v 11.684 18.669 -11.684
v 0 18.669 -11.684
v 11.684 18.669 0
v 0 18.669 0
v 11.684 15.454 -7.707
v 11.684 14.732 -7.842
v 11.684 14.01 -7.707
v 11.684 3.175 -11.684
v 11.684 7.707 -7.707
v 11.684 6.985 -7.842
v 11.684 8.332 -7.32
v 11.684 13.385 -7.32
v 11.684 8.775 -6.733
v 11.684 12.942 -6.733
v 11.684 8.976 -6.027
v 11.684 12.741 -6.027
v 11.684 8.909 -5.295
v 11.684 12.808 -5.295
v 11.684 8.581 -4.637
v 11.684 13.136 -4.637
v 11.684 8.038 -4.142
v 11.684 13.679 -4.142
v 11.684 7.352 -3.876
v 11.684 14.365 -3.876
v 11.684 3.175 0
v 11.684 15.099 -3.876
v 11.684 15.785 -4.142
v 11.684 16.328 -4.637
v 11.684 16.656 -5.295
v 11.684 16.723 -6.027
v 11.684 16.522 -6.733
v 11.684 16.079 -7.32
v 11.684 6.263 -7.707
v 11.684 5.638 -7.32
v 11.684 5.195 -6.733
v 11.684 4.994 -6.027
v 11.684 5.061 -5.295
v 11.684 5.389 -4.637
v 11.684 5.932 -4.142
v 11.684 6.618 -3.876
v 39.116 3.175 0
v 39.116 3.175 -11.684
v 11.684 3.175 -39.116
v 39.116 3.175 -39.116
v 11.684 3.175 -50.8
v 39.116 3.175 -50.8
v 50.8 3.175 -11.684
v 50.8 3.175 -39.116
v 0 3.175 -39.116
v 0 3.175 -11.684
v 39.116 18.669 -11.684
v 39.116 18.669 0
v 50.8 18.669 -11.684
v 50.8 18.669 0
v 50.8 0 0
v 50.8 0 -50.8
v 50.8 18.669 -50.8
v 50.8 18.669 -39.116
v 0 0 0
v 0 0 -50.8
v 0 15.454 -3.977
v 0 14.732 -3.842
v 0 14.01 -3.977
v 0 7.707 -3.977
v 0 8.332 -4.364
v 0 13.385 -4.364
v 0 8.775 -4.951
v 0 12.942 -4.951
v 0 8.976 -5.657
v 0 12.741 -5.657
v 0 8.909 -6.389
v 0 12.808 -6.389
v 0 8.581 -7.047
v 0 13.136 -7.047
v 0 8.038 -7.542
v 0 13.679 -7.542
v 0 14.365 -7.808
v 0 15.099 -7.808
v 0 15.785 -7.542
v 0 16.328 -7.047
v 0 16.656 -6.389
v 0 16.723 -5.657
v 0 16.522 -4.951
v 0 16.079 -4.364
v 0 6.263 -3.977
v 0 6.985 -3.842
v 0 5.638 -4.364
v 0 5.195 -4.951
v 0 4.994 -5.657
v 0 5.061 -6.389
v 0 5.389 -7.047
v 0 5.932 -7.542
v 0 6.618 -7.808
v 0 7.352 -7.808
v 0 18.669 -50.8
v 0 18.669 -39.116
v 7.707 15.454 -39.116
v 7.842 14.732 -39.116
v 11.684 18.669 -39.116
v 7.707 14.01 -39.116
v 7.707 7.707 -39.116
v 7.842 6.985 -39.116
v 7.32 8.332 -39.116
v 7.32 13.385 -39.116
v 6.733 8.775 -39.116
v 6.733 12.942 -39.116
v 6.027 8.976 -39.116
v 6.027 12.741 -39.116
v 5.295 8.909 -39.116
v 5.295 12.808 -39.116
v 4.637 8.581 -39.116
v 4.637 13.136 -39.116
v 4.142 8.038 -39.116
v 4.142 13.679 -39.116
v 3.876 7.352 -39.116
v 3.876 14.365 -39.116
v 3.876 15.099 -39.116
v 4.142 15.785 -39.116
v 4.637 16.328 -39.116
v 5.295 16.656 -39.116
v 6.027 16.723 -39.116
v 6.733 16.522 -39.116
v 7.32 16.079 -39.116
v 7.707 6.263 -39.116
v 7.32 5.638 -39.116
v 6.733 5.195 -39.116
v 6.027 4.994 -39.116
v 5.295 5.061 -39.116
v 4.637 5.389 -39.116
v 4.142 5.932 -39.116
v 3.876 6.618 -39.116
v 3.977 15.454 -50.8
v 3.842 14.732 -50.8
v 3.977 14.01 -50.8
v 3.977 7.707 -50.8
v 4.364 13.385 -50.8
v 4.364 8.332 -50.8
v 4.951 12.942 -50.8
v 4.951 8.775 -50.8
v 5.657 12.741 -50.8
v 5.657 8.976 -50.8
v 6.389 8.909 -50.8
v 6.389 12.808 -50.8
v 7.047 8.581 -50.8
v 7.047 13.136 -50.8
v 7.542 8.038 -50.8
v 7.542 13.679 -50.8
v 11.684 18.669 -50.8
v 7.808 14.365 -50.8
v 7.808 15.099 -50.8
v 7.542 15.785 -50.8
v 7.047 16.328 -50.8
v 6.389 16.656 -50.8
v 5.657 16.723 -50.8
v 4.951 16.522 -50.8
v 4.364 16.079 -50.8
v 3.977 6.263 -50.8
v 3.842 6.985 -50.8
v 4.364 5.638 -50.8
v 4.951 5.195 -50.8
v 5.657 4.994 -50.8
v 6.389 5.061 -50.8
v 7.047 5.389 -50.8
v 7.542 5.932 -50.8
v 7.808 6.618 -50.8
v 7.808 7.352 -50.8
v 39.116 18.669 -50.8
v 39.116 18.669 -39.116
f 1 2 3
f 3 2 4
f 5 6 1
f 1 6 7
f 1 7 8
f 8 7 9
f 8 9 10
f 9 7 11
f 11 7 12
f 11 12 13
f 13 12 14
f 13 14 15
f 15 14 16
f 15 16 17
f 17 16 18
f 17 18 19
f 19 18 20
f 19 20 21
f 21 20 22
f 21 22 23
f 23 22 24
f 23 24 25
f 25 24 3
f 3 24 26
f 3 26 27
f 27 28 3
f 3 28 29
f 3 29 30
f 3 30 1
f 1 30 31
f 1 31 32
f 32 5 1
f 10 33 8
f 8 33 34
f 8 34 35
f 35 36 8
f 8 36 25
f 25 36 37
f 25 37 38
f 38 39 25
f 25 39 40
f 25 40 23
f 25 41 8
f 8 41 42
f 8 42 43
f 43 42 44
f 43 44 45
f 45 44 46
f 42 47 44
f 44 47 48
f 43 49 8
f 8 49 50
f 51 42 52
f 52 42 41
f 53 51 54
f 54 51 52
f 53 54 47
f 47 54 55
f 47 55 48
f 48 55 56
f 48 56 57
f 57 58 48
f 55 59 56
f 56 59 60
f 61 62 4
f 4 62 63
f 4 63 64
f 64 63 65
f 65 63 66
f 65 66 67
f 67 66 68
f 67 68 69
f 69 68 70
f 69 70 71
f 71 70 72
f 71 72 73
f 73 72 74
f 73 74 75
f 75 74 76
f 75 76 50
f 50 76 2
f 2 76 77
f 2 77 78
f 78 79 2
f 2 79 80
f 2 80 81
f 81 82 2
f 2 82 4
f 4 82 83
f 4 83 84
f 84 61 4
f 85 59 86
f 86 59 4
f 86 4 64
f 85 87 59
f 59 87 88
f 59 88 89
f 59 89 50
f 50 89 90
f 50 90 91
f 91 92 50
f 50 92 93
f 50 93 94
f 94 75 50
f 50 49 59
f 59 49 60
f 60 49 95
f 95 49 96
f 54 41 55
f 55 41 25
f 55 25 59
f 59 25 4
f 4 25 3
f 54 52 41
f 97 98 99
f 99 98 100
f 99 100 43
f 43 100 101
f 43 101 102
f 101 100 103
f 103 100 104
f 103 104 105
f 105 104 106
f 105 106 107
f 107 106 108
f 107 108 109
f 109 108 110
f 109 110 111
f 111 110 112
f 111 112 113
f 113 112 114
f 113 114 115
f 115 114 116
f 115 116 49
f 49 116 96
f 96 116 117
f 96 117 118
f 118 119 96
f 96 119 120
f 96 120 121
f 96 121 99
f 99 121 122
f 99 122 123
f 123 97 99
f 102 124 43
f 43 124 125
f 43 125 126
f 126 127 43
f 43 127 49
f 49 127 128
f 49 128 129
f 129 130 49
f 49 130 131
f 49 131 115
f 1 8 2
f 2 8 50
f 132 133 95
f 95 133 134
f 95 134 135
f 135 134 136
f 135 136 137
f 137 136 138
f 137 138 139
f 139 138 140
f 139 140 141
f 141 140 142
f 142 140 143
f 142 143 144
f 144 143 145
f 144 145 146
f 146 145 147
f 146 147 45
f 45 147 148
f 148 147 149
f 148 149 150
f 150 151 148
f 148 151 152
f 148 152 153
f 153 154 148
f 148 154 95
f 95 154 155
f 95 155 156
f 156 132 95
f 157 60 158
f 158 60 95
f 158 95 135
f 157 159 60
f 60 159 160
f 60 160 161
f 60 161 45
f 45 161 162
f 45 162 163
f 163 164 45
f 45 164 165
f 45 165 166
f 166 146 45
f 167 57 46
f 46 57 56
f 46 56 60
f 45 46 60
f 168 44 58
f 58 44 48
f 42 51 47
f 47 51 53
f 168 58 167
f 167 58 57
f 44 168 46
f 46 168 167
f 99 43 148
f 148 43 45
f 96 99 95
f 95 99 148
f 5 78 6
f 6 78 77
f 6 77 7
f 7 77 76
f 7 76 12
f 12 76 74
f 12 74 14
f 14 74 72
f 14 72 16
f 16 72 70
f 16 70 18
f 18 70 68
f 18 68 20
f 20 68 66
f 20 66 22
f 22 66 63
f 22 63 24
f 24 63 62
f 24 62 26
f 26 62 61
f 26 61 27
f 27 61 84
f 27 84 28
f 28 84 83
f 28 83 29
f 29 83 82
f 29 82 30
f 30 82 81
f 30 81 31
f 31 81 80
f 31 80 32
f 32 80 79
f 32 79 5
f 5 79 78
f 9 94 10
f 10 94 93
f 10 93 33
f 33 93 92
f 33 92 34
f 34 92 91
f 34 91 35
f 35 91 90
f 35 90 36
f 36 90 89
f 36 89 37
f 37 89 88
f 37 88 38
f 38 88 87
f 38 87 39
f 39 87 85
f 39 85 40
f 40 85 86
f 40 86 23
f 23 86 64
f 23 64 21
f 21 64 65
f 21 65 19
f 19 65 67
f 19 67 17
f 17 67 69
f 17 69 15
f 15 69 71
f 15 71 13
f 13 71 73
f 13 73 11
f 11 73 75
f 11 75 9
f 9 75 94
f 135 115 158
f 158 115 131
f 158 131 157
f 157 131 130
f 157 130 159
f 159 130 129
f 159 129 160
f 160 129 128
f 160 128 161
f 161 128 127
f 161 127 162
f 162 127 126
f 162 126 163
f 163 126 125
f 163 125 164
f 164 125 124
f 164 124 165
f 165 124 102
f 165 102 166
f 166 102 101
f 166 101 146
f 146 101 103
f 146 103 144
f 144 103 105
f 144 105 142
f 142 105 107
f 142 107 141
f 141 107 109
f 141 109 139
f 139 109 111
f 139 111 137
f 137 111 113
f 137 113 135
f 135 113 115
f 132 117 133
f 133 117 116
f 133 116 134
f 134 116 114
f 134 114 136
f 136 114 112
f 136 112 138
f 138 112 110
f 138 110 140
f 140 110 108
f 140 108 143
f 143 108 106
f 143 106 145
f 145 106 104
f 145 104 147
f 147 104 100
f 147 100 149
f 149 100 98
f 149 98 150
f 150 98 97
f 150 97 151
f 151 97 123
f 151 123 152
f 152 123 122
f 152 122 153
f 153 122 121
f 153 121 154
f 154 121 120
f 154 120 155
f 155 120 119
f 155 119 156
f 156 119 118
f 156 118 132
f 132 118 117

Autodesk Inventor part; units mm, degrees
ref_plane "YZ Plane" through (0, 0, 0) normal (1, 0, 0) x (0, 1, 0)
ref_plane "XZ Plane" through (0, 0, 0) normal (0, 1, 0) x (-1, 0, 0)
ref_plane "XY Plane" through (0, 0, 0) normal (0, 0, 1) x (1, 0, 0)
sketch "Sketch1" plane through (0, 0, 0) normal (0, 0, 1) x (1, 0, 0)
  line L0 (0, 0) -> (50.8, 0)
  line L1 (50.8, 0) -> (50.8, 3.175)
  line L2 (50.8, 3.175) -> (0, 3.175)
  line L3 (0, 3.175) -> (0, 0)
  line L4 (0, 3.175) -> (11.684, 3.175)
  line L5 (11.684, 3.175) -> (11.684, 18.669)
  line L6 (11.684, 18.669) -> (0, 18.669)
  line L7 (0, 18.669) -> (0, 3.175)
  line L8 (50.8, 3.175) -> (39.116, 3.175)
  line L9 (39.116, 3.175) -> (39.116, 18.669)
  line L10 (39.116, 18.669) -> (50.8, 18.669)
  line L11 (50.8, 18.669) -> (50.8, 3.175)
  dimension "d0" = 50.8
  dimension "d1" = 3.175
  dimension "d2" = 11.684
  dimension "d3" = 15.494
  dimension "d4" = 11.684
  dimension "d5" = 15.494
extrude "Extrusion1" add sketch "Sketch1" against normal blind 50.8
sketch "Sketch2" plane through (50.8, 0, 0) normal (1, 0, 0) x (0, 0, -1)
  line L0 (0, 3.175) -> (0, 18.669) projected
  line L1 (0, 3.175) -> (11.684, 3.175)
  line L2 (11.684, 3.175) -> (11.684, 18.669)
  line L3 (11.684, 18.669) -> (0, 18.669)
  line L4 (0, 18.669) -> (0, 3.175)
  line L5 (0, 18.669) -> (50.8, 18.669) projected
  line L6 (0, 3.175) -> (50.8, 3.175) projected
  line L7 (50.8, 18.669) -> (39.116, 18.669)
  line L8 (39.116, 18.669) -> (39.116, 3.175)
  line L9 (39.116, 3.175) -> (50.8, 3.175)
  line L10 (50.8, 3.175) -> (50.8, 18.669)
  line L11 (11.684, 3.175) -> (39.116, 3.175)
  point P0 (0, 0)
  dimension "d8" = 11.684
  dimension "d9" = 15.494
  dimension "d10" = 11.684
extrude "Extrusion2" cut sketch "Sketch2" against normal blind 50.8 contours L2 L5 L8 L6
sketch "Sketch3" plane through (0, 0, 0) normal (-1, 0, 0) x (0, 0, 1)
  line L0 (0, 3.175) -> (-11.684, 3.175) projected
  circle A0 centre (-5.842, 6.985) radius 2
  line L1 (0, 3.175) -> (0, 18.669) projected
  circle A1 centre (-5.842, 14.732) radius 2
  point P0 (0, 0)
  dimension "d14" = 4
  dimension "d16" = 4
extrude "Extrusion3" cut sketch "Sketch3" against normal up to surface (11.684 mm away)
sketch "Sketch4" plane through (0, 0, -50.8) normal (0, 0, -1) x (-1, 0, 0)
  line L0 (-11.684, 3.175) -> (0, 3.175) projected
  circle A0 centre (-5.842, 6.985) radius 2
  line L1 (-11.684, 3.175) -> (-11.684, 18.669) projected
  line L2 (0, 18.669) -> (0, 3.175) projected
  circle A1 centre (-5.842, 14.732) radius 2
  point P0 (0, 0)
  dimension "d20" = 4
  dimension "d22" = 4
extrude "Extrusion4" cut sketch "Sketch4" against normal up to surface (11.684 mm away)
properties part number "Ruler square"
